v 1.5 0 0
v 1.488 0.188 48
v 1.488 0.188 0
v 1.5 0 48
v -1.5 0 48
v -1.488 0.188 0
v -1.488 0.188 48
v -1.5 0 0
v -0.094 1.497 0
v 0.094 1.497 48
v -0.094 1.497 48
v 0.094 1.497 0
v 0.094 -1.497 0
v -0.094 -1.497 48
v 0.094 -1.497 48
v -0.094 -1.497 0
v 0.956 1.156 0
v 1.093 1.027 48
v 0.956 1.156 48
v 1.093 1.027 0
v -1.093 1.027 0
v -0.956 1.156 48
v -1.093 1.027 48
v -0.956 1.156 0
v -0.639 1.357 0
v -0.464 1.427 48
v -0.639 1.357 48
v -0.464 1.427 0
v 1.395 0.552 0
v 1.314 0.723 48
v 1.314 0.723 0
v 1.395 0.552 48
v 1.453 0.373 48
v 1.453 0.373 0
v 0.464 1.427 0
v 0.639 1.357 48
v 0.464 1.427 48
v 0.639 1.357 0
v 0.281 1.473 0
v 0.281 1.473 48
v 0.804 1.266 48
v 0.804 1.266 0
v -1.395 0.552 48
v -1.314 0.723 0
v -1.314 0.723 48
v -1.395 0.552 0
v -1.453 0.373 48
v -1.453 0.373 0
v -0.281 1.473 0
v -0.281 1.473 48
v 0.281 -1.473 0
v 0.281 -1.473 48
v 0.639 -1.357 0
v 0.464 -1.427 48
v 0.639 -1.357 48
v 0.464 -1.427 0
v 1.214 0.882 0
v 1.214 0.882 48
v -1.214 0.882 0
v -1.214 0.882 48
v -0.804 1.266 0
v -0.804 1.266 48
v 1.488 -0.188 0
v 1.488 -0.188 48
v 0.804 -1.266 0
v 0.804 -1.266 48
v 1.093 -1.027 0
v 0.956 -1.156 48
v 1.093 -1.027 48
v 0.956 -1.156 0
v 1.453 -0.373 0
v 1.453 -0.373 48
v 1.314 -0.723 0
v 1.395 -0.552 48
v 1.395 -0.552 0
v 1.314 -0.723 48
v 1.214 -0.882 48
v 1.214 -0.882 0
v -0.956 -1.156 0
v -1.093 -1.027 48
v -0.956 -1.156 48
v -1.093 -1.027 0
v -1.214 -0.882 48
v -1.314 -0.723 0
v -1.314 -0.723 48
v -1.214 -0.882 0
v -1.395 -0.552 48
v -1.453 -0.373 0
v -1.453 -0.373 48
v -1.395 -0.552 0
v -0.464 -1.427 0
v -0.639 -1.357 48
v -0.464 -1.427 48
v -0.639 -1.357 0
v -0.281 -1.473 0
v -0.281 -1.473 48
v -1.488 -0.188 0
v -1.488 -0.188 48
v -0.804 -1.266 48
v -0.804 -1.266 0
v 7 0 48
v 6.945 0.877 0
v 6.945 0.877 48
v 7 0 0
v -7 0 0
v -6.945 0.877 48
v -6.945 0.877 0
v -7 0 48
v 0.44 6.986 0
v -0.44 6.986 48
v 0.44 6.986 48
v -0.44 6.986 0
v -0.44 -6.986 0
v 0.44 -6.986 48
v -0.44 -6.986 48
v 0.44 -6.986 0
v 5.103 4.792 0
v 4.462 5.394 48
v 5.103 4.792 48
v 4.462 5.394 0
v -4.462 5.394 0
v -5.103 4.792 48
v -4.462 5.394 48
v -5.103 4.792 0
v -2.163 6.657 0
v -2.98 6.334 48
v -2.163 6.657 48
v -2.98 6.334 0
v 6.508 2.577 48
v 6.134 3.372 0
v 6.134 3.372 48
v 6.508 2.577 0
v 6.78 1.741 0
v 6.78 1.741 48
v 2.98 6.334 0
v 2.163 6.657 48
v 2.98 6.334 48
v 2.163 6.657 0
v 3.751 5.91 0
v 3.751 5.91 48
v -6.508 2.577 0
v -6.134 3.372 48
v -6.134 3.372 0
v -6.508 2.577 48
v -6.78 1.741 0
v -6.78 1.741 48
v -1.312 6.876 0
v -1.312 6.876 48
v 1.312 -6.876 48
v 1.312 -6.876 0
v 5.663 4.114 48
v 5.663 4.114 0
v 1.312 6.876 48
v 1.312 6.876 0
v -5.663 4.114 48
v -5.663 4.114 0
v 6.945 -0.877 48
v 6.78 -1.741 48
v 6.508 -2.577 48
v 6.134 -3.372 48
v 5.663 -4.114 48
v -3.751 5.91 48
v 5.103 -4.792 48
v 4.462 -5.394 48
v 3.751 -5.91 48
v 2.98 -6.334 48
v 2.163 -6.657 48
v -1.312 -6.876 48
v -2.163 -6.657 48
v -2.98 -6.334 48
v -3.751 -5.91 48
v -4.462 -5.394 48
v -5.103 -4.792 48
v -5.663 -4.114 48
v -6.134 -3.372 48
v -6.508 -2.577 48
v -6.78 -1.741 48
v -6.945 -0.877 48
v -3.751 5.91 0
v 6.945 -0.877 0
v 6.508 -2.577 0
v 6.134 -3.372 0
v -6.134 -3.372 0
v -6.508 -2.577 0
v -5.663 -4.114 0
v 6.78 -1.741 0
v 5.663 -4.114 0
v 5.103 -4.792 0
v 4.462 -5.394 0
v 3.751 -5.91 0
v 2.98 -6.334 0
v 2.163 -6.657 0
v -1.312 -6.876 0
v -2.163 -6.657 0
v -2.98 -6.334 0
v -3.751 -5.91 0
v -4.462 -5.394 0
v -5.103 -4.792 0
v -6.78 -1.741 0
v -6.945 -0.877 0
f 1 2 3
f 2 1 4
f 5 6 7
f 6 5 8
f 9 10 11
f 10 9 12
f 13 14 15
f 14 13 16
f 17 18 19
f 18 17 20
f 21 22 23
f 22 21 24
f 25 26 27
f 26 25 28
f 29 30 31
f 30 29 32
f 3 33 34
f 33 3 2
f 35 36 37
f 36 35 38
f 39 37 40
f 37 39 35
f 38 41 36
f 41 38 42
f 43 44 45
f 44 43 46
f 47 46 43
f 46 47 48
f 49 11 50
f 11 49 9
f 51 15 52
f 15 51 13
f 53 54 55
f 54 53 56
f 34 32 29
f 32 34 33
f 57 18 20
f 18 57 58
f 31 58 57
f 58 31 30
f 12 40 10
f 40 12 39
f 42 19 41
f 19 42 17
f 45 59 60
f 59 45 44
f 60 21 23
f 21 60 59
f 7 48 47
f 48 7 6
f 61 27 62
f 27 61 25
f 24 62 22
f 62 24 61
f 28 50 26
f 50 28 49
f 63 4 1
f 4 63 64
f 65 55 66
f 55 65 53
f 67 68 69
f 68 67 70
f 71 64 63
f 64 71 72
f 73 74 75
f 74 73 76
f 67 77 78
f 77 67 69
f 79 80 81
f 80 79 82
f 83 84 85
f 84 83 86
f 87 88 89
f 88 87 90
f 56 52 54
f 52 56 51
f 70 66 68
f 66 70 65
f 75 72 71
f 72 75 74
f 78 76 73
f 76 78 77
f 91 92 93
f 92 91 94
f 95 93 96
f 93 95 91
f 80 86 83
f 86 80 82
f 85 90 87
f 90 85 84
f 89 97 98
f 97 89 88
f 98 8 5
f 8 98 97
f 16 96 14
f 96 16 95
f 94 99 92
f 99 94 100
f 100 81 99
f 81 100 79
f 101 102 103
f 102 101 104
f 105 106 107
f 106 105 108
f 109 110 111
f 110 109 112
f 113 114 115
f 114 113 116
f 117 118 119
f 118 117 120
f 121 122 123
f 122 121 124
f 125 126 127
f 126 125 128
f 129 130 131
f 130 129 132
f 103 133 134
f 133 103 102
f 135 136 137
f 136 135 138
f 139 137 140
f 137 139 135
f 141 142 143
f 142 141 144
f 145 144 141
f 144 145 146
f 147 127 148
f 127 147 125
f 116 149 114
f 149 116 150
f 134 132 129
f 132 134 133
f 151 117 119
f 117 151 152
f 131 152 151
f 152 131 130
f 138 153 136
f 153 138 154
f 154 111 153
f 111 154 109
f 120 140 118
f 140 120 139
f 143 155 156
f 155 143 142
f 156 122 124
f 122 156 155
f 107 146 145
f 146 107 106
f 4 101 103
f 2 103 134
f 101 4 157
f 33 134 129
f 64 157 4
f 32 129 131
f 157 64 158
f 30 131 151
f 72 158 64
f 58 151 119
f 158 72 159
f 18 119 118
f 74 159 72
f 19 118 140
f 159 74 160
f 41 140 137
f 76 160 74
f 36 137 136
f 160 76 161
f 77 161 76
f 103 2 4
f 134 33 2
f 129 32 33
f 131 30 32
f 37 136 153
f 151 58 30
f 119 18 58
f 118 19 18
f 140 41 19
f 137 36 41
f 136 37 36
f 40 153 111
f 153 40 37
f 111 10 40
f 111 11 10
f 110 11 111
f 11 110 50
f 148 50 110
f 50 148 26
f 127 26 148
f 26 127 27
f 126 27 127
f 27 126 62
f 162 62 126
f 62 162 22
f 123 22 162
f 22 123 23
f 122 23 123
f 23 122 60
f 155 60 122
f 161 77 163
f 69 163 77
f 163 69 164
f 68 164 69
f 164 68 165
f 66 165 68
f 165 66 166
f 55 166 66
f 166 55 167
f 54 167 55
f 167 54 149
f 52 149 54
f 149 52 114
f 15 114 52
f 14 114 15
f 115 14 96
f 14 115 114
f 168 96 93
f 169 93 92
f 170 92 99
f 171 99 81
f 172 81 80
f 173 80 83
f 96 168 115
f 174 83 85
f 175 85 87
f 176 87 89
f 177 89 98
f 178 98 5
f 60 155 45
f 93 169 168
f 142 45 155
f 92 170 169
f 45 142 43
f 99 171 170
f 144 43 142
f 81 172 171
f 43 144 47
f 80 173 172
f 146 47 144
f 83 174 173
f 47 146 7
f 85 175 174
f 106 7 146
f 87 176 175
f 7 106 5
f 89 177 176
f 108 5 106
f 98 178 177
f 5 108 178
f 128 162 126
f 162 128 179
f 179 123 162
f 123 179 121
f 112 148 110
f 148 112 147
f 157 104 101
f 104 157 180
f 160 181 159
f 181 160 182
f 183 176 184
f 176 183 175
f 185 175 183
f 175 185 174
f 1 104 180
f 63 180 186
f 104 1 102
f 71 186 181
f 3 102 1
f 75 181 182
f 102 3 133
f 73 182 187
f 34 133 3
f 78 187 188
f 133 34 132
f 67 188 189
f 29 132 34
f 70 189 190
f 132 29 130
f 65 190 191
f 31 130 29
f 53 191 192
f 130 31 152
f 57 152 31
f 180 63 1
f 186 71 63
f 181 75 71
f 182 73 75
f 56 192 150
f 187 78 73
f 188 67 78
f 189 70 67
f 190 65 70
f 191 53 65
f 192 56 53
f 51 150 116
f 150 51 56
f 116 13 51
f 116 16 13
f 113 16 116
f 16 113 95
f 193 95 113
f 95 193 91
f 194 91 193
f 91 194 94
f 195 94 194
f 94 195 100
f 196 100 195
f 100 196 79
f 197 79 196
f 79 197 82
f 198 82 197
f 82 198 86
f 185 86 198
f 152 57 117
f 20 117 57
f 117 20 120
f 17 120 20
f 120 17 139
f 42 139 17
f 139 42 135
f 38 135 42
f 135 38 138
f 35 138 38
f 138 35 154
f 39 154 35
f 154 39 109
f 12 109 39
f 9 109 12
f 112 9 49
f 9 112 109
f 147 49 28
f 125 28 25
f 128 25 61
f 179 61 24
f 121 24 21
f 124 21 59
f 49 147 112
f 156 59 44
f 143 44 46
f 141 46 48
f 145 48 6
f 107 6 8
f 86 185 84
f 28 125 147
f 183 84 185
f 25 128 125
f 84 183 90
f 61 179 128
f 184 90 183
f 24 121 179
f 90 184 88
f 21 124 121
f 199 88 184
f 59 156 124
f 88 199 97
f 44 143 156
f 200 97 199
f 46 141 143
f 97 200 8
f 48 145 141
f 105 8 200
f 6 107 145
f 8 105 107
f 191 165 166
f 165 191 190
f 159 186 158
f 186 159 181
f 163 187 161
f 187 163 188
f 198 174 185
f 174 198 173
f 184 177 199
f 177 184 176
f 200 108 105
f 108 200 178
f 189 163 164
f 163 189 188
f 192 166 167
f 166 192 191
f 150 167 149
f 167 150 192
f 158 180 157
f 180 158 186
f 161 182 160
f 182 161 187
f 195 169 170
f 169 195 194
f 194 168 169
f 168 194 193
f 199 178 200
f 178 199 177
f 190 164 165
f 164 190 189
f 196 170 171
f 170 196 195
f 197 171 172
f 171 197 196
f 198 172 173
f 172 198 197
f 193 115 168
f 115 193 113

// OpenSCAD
$fn = 50;


difference() {
	union() {
		cylinder(h = 48, r = 7.0000000000);
	}
	union() {
		translate(v = [0, 0, -100]) {
			cylinder(h = 200, r = 1.5000000000);
		}
		translate(v = [0, 0, -100]) {
			cylinder(h = 200, r = 1.5000000000);
		}
	}
}
